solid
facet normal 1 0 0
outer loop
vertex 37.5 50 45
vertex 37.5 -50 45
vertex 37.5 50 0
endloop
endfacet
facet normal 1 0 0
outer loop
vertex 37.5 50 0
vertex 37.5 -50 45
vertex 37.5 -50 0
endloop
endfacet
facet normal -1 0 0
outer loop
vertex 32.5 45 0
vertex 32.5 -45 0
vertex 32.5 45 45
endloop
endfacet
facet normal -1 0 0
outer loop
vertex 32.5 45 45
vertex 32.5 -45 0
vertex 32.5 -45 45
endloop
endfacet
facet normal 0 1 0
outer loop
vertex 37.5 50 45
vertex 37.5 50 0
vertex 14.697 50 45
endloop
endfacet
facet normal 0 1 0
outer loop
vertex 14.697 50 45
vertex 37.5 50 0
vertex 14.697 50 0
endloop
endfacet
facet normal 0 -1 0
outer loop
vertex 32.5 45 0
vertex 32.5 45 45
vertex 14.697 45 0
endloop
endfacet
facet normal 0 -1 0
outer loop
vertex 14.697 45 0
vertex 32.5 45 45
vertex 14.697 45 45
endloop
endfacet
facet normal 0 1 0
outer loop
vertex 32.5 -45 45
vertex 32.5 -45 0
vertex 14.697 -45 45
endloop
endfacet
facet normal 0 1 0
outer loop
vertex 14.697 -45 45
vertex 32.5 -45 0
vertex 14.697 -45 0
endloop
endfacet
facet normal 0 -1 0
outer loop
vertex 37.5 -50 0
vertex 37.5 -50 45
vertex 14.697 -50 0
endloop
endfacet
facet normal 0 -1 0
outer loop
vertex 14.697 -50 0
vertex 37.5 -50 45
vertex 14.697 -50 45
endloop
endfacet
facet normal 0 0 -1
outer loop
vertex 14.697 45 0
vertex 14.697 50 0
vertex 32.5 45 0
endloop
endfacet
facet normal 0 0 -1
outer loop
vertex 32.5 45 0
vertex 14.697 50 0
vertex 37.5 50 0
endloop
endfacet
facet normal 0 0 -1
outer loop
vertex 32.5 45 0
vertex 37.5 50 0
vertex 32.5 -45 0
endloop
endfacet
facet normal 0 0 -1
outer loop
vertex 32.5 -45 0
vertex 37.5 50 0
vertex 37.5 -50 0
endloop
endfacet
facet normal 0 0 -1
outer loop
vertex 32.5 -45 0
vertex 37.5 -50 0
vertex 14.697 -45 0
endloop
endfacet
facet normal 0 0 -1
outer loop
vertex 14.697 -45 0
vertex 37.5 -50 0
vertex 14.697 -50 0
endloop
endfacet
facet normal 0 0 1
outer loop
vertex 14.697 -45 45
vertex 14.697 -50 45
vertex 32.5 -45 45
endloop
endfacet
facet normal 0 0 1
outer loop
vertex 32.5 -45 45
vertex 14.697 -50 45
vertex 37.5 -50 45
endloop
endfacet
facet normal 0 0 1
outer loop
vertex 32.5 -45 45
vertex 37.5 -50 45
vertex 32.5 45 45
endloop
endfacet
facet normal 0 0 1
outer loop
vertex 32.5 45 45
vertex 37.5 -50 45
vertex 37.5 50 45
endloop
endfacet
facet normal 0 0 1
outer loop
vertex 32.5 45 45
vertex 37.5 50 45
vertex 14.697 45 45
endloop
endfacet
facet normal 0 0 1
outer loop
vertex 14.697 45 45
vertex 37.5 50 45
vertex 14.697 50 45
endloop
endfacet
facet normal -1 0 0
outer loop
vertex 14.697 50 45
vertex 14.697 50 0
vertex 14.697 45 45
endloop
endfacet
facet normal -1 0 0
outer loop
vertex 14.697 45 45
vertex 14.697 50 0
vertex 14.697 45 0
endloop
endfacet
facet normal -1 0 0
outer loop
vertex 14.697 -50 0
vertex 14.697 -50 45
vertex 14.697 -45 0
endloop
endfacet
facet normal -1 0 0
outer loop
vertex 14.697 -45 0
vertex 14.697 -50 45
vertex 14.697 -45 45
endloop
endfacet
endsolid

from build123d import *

# Parameters (mm, degrees)
SKETCH1_W           = 100
SKETCH1_H           = 75
BOSS_EXTRUDE1_DEPTH = 45
SKETCH2_W           = 15
SKETCH2_H           = 25
CUT_EXTRUDE1_DEPTH  = 78.014609004
SKETCH3_W           = 30.197143083
SKETCH3_H           = 100
CUT_EXTRUDE2_DEPTH  = 78.014609004


with BuildPart() as part:
    # Sketch1 → Boss-Extrude1 (new body)
    with BuildSketch(Plane(origin=(0, 0, 0), x_dir=(0, 1, 0), z_dir=(0, 0, 1))):
        Rectangle(SKETCH1_W, SKETCH1_H)
    extrude(amount=BOSS_EXTRUDE1_DEPTH)

    # Sketch2 → Cut-Extrude1 (cut, through all)
    with BuildSketch(Plane.XY.offset(45)):
        Polygon((-15.5, 18), (-32.5, 18), (-32.5, -45), (32.5, -45), (32.5, 45), (-15.5, 45), (-15.5, 20), align=None)
        with Locations((-25, 32.5)):
            Rectangle(SKETCH2_W, SKETCH2_H)
    extrude(amount=-CUT_EXTRUDE1_DEPTH, mode=Mode.SUBTRACT)

    # Sketch3 → Cut-Extrude2 (cut, through all)
    with BuildSketch(Plane.XY.offset(45)):
        with Locations((-0.401428459, 0)):
            Rectangle(SKETCH3_W, SKETCH3_H)
    extrude(amount=-CUT_EXTRUDE2_DEPTH, mode=Mode.SUBTRACT)


with BuildPart() as body_2:
    # of the pieces the cut leaves, the one that is kept (cut_extrude2_keep)
    add(part.part.solids().sort_by_distance((37.5, -50, 0))[0])


solid = body_2.part
